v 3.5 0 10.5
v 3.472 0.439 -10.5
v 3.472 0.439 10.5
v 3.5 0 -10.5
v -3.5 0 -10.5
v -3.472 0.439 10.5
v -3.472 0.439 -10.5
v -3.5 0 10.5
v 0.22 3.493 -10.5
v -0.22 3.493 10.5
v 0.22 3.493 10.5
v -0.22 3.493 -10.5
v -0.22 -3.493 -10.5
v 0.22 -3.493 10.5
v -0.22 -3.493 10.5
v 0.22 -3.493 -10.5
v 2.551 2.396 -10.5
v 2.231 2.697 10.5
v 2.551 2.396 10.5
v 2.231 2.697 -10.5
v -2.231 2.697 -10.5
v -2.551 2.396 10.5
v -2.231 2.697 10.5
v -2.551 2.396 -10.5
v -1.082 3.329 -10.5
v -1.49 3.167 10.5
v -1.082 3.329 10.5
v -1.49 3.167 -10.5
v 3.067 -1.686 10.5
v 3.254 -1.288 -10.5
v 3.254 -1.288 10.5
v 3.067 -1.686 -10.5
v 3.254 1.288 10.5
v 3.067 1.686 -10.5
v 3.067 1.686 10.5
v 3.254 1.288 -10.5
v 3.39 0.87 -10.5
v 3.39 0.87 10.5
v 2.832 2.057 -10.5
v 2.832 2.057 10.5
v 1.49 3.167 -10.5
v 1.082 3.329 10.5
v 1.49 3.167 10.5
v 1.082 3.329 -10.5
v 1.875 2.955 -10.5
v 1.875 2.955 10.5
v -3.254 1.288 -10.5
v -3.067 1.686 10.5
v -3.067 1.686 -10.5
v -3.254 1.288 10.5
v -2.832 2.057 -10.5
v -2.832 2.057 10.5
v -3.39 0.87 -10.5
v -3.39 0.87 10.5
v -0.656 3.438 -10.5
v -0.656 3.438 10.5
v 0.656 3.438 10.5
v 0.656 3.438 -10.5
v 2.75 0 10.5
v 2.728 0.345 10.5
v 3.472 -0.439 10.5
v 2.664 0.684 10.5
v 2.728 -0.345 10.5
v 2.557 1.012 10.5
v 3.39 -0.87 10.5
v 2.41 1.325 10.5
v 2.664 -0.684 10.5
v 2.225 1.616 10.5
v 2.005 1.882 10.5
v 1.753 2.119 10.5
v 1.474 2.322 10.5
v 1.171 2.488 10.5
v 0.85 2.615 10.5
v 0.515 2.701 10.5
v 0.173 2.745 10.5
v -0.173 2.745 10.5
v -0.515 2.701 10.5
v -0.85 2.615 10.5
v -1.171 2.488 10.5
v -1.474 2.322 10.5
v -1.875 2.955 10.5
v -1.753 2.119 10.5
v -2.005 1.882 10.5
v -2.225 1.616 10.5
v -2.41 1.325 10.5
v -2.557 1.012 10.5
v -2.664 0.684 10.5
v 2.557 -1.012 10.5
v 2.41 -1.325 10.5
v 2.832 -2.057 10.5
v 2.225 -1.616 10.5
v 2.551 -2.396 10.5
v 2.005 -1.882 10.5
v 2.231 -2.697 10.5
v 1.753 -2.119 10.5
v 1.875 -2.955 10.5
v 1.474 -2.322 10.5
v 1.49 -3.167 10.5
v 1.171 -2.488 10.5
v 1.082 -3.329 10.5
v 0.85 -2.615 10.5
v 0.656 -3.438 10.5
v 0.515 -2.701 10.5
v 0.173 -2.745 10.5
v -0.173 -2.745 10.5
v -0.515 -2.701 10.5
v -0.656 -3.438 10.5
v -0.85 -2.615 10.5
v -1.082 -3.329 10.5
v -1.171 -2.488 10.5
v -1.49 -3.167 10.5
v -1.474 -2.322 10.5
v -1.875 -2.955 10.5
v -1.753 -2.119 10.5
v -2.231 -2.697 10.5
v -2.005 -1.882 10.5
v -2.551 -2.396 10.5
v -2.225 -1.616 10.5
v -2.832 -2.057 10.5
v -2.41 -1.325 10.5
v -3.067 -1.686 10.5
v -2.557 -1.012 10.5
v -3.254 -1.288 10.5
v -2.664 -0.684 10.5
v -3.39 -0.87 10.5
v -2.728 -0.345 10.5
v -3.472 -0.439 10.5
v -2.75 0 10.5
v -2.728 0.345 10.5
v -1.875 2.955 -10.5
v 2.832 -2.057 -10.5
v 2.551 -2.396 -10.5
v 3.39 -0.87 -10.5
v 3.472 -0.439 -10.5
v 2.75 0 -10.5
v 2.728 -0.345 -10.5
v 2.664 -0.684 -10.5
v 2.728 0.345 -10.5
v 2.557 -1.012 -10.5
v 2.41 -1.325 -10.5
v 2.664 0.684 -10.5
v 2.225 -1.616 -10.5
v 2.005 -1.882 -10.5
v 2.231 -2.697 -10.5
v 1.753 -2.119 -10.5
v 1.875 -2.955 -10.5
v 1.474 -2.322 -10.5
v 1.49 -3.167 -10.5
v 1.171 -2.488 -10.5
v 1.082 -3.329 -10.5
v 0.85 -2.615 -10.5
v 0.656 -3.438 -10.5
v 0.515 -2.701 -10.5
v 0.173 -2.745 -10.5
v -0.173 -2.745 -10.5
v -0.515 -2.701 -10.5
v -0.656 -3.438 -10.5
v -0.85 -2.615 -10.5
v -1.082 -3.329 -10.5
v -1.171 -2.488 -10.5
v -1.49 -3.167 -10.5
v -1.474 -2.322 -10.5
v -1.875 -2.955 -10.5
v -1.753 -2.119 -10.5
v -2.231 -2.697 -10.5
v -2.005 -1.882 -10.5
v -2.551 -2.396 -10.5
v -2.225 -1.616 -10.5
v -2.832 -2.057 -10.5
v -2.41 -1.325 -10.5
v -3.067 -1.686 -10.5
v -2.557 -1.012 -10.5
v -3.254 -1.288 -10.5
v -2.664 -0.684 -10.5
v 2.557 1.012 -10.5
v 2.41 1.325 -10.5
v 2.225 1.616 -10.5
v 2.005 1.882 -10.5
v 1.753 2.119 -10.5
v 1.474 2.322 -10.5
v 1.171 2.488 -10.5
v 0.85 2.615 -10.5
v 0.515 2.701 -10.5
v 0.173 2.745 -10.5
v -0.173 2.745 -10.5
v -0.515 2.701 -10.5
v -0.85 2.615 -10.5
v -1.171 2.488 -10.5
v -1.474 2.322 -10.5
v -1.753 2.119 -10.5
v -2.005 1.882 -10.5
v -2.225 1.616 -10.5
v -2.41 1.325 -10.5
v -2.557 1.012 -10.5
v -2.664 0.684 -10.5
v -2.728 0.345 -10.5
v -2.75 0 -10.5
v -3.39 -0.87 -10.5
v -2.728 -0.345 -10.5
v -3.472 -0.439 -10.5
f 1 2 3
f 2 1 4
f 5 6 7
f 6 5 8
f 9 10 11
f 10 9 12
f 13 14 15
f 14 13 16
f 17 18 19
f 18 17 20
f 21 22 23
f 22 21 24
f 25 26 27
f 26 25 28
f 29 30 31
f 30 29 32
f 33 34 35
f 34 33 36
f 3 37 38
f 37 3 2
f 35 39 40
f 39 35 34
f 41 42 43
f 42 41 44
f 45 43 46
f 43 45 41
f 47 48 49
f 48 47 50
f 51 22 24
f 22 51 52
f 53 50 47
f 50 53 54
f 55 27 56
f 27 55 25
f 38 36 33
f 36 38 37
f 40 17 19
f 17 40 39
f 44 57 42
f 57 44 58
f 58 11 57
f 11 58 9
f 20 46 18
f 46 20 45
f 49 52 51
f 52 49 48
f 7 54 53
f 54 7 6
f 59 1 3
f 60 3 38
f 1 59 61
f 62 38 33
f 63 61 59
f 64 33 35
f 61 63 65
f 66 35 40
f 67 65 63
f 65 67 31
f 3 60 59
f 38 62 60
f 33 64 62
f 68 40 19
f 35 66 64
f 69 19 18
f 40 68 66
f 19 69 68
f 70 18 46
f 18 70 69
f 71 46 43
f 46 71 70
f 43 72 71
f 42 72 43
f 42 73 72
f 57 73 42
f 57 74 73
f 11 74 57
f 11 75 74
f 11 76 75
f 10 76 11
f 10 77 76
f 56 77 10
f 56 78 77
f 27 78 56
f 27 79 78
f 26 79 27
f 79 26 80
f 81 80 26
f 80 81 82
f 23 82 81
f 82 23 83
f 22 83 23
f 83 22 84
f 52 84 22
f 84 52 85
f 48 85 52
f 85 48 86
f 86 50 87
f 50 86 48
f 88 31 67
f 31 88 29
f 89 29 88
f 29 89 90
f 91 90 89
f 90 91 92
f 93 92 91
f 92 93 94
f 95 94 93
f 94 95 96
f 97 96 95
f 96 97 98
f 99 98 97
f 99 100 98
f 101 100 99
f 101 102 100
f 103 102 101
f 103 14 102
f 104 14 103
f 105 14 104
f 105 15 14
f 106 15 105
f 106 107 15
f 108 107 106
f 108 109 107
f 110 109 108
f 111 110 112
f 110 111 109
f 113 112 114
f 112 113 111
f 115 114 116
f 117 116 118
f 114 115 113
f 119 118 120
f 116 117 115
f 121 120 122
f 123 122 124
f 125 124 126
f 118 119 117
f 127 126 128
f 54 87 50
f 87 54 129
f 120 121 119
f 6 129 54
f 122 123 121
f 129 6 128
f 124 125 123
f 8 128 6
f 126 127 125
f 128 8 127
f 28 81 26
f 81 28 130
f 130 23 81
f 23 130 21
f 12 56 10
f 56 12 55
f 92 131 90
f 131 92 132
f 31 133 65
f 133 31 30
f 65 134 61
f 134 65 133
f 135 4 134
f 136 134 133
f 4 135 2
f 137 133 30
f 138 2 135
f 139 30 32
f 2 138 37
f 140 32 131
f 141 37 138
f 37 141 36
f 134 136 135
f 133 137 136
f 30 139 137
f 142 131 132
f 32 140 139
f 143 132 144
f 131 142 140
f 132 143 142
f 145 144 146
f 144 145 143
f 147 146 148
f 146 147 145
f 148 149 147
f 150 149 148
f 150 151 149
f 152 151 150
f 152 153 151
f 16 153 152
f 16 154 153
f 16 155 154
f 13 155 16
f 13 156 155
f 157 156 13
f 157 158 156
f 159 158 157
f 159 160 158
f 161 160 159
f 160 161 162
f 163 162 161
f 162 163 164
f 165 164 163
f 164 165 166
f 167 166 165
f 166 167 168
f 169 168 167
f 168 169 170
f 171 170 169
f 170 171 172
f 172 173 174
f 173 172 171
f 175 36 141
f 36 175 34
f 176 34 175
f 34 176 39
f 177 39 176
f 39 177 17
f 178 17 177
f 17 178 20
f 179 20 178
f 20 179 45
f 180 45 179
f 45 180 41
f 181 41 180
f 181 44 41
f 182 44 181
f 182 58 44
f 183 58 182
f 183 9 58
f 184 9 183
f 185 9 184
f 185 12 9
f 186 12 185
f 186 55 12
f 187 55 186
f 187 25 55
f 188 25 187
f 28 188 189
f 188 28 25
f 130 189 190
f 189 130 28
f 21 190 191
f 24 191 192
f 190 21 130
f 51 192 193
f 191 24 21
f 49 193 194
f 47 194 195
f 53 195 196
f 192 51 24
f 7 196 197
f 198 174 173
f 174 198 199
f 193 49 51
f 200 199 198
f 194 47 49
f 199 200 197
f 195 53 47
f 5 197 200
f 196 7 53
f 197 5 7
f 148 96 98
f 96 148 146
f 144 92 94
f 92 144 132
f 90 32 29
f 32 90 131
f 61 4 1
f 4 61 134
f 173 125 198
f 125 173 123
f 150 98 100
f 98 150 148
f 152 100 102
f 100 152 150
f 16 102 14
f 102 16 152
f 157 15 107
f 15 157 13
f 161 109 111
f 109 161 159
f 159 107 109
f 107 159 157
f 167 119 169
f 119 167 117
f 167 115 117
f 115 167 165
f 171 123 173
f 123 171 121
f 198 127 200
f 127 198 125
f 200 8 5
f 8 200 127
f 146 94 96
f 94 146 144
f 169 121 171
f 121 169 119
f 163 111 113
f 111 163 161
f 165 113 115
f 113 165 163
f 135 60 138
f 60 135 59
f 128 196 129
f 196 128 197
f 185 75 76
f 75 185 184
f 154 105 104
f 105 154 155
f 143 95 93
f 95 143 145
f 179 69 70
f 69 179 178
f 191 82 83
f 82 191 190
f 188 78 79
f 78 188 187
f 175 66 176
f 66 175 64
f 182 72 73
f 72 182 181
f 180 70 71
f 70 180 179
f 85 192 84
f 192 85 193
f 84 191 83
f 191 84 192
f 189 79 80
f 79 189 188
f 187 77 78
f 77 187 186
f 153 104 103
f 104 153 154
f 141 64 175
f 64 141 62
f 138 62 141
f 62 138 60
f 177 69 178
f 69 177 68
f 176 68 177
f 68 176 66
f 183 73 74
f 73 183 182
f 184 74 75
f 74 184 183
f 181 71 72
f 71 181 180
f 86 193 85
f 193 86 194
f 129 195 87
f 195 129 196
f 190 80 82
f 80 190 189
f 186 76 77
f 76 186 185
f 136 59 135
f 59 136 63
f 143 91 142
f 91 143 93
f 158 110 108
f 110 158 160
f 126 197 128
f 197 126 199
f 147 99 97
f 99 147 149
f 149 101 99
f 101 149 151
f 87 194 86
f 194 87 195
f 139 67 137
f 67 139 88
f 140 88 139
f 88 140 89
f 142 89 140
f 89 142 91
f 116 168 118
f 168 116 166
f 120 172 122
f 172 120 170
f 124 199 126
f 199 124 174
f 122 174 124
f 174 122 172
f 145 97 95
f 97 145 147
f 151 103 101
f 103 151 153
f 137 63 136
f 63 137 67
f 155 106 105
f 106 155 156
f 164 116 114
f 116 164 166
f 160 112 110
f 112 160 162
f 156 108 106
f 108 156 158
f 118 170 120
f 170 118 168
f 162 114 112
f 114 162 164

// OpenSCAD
$fn = 50;


difference() {
	union() {
		translate(v = [0, 0, -10.5000000000]) {
			cylinder(h = 21, r = 3.5000000000);
		}
	}
	union() {
		translate(v = [0, 0, -100.0000000000]) {
			cylinder(h = 200, r = 2.7500000000);
		}
	}
}
